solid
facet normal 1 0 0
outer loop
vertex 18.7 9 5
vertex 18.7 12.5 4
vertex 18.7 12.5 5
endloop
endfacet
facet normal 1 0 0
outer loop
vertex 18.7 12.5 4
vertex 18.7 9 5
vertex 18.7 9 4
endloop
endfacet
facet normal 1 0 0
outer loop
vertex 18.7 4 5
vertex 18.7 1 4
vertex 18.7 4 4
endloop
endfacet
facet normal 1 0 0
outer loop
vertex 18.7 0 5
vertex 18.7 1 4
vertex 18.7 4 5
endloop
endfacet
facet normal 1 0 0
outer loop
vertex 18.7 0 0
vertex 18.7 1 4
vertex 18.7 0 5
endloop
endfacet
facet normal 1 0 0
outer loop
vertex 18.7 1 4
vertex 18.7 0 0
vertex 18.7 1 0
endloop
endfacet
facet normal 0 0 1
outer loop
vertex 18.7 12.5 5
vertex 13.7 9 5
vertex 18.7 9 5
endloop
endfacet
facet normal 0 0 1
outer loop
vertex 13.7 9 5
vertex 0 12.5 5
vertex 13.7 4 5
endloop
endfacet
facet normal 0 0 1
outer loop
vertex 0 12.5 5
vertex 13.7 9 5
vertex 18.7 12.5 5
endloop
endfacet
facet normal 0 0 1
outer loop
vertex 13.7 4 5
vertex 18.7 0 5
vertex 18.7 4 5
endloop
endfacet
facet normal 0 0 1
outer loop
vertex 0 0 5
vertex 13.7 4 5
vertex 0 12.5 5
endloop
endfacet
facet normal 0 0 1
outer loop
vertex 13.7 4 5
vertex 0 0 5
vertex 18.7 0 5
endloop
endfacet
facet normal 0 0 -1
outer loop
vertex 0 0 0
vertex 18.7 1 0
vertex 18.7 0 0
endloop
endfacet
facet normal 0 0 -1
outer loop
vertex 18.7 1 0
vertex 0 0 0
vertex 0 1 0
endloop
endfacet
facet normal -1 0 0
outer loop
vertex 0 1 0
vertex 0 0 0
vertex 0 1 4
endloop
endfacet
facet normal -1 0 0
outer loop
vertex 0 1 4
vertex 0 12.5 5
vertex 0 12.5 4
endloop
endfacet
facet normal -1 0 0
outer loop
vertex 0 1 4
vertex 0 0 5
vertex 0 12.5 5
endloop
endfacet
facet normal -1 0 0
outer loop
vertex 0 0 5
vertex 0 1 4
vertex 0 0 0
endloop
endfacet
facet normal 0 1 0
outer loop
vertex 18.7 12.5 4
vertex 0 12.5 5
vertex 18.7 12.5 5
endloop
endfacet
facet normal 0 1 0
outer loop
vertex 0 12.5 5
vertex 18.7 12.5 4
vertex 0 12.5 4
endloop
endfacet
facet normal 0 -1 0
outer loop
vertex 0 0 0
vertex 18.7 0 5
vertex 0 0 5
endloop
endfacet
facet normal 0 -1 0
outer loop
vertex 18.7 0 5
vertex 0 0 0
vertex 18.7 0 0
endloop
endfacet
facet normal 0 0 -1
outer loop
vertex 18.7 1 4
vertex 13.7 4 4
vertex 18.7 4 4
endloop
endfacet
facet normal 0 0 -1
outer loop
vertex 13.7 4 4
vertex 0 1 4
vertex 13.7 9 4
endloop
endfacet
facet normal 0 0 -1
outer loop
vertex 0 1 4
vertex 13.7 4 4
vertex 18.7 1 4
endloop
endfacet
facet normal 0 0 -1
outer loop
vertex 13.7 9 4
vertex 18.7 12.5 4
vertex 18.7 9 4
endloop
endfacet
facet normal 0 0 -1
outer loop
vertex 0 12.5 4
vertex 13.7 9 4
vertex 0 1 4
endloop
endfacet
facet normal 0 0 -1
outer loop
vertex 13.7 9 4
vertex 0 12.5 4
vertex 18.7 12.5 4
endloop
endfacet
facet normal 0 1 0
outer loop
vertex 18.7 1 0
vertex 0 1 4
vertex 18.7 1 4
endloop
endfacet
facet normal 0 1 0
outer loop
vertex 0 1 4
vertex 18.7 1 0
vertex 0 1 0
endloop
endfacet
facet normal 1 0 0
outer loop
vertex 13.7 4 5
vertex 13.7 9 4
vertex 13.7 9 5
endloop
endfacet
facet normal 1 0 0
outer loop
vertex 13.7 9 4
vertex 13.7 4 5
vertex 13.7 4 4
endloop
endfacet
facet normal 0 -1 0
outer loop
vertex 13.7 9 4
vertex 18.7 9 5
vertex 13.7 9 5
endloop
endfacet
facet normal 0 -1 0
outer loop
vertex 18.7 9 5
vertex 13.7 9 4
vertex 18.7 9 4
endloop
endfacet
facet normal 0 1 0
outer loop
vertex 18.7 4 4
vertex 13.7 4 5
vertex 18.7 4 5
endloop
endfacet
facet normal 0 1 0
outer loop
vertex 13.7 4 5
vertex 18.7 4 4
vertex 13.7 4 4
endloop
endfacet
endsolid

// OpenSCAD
difference(){
    cube([18.7, 12.5, 5]);
    translate([0, 1, 0]){
        cube([18.7, 12.5, 4]);
    }
    translate([13.7, 4, 0]){
        cube([5, 5, 5]);
    }
}
